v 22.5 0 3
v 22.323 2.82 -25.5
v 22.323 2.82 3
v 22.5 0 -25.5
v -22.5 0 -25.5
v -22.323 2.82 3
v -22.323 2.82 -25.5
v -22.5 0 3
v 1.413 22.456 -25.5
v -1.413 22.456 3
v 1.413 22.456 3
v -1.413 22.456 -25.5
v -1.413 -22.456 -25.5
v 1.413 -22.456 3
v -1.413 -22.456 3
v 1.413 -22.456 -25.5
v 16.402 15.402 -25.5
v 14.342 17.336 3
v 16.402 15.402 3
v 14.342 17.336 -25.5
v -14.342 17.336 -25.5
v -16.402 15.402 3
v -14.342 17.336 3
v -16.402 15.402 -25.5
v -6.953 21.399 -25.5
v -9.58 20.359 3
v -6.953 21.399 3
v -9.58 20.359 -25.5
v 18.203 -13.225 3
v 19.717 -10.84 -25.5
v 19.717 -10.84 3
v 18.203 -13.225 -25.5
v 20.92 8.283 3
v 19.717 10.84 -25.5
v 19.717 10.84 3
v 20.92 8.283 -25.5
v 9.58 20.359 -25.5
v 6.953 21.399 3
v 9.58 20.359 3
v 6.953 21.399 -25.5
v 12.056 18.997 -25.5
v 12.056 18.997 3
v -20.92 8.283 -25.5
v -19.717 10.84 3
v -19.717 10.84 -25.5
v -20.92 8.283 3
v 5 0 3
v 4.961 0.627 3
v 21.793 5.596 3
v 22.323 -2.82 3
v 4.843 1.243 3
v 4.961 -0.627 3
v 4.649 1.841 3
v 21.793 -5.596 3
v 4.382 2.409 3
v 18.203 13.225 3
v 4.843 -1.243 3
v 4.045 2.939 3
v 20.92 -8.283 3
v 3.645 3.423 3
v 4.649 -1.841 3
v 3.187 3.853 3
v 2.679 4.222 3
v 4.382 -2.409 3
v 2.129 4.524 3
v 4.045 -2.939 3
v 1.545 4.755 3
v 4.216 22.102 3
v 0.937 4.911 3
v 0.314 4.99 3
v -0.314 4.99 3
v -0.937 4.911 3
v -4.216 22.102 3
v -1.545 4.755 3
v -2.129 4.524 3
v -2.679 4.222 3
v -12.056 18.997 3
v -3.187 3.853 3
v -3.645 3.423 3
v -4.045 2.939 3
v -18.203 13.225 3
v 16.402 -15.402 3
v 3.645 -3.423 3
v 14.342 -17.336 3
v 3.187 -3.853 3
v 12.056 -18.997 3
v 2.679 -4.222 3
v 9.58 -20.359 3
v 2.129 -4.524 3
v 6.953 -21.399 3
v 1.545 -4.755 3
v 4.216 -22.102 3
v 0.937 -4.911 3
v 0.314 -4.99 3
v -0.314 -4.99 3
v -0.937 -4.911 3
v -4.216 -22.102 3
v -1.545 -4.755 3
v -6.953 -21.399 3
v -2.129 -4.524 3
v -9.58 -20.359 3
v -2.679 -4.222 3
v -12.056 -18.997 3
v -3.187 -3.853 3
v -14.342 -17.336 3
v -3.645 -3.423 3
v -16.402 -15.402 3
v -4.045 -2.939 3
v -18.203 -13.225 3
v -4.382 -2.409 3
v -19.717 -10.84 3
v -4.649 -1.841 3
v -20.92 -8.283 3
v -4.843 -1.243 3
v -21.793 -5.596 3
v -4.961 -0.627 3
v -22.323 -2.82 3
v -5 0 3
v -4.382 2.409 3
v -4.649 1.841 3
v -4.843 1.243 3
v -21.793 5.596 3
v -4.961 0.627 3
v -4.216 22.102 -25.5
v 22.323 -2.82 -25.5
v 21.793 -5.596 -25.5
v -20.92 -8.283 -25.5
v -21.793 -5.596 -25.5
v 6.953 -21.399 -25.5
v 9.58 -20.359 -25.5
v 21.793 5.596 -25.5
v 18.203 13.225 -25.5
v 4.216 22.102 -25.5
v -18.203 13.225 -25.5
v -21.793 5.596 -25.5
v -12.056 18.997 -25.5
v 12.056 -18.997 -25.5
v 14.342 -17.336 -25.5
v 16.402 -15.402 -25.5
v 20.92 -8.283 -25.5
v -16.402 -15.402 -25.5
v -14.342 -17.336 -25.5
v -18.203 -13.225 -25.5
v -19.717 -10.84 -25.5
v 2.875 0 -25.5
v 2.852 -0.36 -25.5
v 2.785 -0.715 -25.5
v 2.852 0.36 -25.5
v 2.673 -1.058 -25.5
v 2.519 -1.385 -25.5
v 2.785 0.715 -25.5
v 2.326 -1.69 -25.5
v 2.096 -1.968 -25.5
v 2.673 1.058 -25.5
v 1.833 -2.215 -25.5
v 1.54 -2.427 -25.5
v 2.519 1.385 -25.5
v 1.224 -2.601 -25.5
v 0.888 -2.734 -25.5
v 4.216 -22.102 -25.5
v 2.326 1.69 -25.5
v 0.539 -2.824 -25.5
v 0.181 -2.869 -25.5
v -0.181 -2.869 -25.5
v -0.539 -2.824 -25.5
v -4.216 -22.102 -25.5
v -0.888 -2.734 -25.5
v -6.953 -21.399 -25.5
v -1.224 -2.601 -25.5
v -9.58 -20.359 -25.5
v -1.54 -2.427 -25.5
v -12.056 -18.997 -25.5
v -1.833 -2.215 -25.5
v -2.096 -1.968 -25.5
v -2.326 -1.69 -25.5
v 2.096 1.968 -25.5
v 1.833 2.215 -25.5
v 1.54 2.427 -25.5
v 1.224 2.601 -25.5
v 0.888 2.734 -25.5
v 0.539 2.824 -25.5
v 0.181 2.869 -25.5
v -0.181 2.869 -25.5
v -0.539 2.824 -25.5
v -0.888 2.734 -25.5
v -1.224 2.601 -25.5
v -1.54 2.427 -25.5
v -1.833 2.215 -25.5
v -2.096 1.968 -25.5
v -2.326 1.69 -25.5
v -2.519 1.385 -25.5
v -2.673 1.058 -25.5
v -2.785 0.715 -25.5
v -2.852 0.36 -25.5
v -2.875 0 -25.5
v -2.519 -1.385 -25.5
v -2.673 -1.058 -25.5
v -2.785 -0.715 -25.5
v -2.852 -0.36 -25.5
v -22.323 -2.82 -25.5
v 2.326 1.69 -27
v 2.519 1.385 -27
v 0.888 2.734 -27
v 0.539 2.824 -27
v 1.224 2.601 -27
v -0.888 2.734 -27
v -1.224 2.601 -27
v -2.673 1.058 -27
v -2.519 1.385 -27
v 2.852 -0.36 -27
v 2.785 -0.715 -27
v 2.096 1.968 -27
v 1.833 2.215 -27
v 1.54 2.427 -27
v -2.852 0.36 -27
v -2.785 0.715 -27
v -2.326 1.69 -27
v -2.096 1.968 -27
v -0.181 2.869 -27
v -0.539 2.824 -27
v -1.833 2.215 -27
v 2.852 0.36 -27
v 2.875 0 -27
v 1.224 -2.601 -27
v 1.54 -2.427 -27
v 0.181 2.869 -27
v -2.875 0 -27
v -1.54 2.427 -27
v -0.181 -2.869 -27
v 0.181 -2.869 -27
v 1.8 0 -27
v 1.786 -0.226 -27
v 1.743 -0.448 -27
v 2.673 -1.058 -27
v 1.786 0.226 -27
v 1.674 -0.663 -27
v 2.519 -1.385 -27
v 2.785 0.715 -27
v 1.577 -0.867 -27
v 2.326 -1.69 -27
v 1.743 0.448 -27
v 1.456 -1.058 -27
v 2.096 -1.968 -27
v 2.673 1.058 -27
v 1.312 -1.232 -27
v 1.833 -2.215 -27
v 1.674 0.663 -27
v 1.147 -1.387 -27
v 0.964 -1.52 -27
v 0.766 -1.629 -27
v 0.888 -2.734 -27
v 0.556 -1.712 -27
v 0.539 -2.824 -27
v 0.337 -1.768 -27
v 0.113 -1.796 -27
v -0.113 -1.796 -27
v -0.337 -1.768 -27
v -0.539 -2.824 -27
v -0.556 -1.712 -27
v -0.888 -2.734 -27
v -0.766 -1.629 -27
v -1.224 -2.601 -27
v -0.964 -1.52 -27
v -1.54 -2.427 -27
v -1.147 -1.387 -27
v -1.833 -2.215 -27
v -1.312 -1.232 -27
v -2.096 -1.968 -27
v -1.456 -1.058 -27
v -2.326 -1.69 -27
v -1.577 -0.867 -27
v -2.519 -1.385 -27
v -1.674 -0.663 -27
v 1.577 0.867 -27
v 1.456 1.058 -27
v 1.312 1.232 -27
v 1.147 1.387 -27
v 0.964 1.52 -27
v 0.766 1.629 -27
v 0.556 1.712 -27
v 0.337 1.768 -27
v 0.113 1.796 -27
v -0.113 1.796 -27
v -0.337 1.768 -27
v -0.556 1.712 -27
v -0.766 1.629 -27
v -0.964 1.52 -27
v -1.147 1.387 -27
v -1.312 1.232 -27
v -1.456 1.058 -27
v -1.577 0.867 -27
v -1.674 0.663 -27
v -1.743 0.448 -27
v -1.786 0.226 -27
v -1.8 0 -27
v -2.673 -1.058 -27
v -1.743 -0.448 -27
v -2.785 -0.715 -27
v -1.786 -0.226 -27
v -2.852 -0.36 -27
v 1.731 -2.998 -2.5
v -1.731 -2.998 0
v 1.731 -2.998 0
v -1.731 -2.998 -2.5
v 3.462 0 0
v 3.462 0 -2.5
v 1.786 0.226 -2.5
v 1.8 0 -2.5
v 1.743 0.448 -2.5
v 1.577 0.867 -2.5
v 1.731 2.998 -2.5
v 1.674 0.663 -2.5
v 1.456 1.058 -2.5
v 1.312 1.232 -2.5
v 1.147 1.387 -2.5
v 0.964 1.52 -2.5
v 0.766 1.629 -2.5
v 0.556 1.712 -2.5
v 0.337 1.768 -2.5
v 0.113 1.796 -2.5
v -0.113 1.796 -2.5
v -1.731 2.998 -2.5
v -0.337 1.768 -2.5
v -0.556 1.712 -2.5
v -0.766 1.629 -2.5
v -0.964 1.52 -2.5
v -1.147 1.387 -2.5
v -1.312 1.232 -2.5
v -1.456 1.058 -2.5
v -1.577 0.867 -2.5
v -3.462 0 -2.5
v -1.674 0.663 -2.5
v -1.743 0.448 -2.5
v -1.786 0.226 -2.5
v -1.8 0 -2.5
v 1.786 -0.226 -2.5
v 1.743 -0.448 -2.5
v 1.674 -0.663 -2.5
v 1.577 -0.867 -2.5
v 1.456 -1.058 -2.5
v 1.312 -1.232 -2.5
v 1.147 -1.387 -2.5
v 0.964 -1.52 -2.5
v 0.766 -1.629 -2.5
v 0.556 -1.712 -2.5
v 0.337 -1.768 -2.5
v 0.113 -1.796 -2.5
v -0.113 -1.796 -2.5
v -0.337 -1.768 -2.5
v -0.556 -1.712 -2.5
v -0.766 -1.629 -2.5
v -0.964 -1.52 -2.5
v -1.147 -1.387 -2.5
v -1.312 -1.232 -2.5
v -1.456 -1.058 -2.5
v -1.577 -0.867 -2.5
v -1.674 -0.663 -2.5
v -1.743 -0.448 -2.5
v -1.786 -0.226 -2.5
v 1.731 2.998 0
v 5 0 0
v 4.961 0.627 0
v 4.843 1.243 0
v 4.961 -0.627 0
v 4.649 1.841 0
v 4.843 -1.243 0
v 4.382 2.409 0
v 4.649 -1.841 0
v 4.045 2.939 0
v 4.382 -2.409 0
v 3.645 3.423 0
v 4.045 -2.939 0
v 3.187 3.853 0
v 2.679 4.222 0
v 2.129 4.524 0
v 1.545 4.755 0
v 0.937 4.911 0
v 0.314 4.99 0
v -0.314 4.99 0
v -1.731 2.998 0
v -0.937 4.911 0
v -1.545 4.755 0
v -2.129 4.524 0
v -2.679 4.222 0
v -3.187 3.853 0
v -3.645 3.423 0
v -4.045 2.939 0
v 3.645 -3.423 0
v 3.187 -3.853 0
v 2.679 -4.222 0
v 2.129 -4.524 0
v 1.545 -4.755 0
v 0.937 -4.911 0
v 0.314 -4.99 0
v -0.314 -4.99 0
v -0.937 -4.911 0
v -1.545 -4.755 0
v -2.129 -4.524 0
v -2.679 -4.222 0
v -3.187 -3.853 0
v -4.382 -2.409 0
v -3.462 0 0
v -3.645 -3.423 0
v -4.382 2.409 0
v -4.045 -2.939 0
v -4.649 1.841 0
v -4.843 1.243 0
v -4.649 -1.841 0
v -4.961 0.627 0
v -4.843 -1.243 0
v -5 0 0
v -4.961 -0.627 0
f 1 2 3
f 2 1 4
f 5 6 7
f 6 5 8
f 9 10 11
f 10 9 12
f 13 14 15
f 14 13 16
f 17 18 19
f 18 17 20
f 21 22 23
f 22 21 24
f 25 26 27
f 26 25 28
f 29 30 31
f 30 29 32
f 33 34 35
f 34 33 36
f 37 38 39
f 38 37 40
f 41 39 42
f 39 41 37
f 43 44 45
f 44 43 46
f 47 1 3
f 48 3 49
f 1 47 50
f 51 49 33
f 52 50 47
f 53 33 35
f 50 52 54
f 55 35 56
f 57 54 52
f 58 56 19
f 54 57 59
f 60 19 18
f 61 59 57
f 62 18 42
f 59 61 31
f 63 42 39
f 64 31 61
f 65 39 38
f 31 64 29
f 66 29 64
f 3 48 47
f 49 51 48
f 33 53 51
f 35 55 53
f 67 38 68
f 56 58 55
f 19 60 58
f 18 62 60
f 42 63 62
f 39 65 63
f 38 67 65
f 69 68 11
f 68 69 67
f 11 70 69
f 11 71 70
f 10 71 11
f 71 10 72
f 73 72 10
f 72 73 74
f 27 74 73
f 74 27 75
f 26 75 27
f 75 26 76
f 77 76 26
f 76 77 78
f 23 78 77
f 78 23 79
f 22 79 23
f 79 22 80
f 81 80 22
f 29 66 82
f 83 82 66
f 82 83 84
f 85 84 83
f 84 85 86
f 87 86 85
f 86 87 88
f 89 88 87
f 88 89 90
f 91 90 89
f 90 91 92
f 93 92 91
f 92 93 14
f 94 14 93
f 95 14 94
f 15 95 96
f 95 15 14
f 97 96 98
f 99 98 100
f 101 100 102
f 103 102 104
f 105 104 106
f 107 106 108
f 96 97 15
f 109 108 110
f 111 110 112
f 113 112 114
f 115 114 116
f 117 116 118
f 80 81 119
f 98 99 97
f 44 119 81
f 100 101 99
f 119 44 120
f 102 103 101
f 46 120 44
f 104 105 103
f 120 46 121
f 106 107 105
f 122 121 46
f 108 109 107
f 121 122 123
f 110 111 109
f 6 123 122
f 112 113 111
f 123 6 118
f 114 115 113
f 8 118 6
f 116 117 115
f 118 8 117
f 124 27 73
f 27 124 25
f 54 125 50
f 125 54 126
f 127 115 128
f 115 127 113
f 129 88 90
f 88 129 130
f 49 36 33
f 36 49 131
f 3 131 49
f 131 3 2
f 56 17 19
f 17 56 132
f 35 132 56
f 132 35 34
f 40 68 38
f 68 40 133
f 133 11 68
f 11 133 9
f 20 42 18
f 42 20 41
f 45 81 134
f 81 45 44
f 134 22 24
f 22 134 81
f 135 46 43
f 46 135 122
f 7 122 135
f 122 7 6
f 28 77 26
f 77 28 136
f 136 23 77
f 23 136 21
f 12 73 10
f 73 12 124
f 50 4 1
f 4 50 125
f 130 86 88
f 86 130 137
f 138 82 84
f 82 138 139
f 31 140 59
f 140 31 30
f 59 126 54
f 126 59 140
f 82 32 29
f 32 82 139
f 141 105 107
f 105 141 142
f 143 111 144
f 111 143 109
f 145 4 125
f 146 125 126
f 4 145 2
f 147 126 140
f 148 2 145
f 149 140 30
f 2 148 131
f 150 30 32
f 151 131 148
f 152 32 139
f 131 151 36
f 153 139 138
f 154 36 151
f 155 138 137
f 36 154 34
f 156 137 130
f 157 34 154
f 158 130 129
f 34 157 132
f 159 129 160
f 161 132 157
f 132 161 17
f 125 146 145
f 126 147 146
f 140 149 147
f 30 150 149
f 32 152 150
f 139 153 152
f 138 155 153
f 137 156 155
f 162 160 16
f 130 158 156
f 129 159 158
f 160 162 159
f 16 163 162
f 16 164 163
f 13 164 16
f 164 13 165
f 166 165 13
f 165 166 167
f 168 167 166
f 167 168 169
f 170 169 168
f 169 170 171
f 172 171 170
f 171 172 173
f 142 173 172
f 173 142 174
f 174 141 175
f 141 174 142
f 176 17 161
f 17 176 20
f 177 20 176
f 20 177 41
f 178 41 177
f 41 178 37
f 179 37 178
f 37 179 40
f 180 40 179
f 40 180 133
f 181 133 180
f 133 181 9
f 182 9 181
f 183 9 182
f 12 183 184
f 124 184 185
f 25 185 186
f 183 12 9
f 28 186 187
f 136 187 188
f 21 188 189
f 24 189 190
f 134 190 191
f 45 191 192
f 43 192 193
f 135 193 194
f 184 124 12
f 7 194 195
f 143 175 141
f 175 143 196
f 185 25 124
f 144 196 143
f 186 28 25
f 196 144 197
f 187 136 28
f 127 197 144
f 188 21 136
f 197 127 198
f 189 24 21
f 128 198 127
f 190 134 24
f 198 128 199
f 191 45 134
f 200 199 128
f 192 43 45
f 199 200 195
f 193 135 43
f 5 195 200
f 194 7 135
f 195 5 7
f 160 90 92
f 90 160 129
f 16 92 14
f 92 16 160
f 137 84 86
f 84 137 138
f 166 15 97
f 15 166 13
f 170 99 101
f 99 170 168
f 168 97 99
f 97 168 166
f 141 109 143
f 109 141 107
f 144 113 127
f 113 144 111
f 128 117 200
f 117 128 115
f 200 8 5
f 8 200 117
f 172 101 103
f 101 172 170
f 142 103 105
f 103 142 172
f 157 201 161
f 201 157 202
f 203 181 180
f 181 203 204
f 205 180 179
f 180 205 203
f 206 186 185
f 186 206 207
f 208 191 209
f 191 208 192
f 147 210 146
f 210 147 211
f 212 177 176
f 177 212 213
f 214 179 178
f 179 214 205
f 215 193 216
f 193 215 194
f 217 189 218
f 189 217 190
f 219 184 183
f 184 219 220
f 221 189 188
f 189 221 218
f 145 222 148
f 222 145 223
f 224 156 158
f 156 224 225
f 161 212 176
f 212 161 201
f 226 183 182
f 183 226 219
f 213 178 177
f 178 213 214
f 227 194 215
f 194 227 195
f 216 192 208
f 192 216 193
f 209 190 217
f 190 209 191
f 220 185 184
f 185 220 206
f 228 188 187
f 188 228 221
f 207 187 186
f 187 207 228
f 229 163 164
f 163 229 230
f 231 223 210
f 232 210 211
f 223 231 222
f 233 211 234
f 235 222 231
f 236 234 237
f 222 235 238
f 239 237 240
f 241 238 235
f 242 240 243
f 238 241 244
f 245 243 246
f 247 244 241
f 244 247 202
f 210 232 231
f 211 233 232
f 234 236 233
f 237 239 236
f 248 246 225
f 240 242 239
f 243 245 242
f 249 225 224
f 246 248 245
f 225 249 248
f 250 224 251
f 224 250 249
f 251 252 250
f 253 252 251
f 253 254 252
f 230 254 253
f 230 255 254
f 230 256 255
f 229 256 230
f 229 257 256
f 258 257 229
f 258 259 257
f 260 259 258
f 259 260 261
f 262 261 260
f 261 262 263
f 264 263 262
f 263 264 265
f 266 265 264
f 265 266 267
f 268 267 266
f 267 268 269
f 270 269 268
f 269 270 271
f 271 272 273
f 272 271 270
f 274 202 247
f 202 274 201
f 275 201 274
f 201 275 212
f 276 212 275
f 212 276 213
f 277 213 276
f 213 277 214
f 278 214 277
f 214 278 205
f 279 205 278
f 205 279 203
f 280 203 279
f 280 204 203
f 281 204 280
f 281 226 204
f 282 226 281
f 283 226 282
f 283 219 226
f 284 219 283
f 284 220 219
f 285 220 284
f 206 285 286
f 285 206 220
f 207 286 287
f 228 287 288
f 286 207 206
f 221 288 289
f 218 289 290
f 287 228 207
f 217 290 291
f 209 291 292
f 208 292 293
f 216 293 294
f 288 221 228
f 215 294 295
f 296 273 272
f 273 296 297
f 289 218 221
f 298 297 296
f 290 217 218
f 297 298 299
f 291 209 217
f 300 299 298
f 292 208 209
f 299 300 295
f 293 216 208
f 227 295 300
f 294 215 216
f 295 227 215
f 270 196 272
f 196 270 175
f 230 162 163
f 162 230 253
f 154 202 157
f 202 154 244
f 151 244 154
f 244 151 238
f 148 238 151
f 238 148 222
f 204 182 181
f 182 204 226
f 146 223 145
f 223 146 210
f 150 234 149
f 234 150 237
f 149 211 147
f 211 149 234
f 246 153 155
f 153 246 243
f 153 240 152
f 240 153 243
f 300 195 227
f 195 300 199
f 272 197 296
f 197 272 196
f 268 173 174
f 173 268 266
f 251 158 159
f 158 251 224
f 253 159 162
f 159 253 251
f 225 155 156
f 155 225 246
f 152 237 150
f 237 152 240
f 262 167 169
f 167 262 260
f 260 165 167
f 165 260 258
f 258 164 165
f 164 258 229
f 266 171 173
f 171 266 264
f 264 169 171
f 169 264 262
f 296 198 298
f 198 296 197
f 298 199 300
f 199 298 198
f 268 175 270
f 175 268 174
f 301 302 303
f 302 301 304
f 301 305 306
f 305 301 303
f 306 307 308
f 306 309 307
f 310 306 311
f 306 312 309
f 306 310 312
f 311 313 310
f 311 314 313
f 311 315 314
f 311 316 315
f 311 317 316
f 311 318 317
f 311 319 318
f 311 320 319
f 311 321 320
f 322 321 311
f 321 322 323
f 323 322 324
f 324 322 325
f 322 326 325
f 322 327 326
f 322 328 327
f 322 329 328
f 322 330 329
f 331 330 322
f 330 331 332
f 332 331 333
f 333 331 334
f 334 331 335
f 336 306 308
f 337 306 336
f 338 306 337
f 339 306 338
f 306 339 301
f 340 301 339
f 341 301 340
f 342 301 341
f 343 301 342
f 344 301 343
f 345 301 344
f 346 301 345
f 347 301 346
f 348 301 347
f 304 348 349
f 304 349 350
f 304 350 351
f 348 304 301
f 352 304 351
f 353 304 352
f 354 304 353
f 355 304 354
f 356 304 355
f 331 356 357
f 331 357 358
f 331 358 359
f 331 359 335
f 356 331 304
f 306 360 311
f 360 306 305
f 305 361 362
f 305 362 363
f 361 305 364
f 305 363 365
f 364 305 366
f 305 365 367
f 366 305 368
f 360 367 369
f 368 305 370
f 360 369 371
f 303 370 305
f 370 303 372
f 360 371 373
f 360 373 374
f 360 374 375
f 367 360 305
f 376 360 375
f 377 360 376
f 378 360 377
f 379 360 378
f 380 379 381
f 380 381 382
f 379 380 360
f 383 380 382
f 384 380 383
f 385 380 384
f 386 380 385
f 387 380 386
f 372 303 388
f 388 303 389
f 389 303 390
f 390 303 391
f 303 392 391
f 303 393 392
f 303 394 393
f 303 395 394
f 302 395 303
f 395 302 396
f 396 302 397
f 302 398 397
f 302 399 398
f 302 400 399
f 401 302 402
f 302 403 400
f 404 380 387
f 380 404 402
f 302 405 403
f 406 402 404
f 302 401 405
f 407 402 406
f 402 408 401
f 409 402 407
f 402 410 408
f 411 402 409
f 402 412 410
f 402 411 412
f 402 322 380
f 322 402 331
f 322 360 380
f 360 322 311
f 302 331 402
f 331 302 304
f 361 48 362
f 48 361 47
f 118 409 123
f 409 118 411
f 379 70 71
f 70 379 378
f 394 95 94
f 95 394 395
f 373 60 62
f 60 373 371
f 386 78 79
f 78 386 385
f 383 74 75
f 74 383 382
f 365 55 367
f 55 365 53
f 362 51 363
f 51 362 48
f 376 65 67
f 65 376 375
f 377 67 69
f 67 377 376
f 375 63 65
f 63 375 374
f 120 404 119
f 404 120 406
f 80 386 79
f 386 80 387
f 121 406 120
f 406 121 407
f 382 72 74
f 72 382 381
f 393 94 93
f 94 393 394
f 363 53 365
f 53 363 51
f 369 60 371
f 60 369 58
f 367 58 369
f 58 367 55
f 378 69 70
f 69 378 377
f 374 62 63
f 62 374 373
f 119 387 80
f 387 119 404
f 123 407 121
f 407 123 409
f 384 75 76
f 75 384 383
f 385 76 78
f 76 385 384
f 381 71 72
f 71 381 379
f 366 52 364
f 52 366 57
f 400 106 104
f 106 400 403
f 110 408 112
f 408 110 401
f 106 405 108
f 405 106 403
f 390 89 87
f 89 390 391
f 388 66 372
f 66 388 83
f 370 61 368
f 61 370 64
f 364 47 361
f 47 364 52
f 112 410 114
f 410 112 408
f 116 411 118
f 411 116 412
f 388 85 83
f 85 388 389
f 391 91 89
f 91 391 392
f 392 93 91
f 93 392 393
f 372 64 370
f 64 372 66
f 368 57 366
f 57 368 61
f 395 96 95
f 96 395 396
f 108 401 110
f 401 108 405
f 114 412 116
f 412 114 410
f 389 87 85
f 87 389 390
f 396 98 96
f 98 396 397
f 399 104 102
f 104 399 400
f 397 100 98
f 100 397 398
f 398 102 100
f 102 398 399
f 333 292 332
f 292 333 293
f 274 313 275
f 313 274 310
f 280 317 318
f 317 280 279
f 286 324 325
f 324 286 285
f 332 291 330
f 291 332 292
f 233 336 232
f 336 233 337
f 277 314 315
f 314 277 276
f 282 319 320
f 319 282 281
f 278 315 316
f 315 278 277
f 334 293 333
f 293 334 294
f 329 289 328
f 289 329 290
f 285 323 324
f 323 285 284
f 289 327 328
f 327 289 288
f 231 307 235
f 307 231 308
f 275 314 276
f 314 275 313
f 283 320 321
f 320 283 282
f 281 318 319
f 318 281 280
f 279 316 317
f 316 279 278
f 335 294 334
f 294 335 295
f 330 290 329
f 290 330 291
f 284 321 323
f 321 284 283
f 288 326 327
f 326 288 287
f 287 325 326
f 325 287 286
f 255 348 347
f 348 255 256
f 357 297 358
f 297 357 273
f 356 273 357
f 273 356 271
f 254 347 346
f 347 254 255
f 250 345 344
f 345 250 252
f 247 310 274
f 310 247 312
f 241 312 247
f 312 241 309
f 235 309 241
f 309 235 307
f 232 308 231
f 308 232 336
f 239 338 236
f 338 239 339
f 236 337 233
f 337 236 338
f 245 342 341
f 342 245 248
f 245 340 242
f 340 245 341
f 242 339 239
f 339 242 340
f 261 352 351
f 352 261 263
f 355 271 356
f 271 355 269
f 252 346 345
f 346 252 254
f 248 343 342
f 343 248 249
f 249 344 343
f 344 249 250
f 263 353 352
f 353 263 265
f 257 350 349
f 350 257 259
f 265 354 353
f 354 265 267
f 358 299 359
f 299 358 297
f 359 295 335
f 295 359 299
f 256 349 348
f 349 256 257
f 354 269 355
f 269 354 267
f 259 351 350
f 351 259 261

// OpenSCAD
$fn = 50;

difference() {
	union() {
		translate(v = [0, 0, -25.5]) {
			cylinder(h = 28.5, r = 22.5);
		}
		#translate(v = [0, 0, -27.0]) {
			cylinder(h = 27, r = 2.875);
		}
	}
	union() {
		translate(v = [0, 0, 0]) {
			rotate(a = [0, 0, 0]) {
				difference() {
					union() {
						translate(v = [0, 0, -2.5]) {
							linear_extrude(height = 2.5) {
								polygon(points = [[3.4619999999999997, 0.0], [1.7310000000000003, 2.9981799479017264], [-1.7309999999999992, 2.9981799479017264], [-3.4619999999999997, 4.2397272186481365e-16], [-1.7310000000000014, -2.998179947901726], [1.7309999999999977, -2.9981799479017277]]);
							}
						}
					}
					union();
				}
			}
		}
		#cylinder(h = 3, r = 5.0);
		#translate(v = [0, 0, -100.0]) {
			cylinder(h = 200, r = 1.8);
		}
	}
}
